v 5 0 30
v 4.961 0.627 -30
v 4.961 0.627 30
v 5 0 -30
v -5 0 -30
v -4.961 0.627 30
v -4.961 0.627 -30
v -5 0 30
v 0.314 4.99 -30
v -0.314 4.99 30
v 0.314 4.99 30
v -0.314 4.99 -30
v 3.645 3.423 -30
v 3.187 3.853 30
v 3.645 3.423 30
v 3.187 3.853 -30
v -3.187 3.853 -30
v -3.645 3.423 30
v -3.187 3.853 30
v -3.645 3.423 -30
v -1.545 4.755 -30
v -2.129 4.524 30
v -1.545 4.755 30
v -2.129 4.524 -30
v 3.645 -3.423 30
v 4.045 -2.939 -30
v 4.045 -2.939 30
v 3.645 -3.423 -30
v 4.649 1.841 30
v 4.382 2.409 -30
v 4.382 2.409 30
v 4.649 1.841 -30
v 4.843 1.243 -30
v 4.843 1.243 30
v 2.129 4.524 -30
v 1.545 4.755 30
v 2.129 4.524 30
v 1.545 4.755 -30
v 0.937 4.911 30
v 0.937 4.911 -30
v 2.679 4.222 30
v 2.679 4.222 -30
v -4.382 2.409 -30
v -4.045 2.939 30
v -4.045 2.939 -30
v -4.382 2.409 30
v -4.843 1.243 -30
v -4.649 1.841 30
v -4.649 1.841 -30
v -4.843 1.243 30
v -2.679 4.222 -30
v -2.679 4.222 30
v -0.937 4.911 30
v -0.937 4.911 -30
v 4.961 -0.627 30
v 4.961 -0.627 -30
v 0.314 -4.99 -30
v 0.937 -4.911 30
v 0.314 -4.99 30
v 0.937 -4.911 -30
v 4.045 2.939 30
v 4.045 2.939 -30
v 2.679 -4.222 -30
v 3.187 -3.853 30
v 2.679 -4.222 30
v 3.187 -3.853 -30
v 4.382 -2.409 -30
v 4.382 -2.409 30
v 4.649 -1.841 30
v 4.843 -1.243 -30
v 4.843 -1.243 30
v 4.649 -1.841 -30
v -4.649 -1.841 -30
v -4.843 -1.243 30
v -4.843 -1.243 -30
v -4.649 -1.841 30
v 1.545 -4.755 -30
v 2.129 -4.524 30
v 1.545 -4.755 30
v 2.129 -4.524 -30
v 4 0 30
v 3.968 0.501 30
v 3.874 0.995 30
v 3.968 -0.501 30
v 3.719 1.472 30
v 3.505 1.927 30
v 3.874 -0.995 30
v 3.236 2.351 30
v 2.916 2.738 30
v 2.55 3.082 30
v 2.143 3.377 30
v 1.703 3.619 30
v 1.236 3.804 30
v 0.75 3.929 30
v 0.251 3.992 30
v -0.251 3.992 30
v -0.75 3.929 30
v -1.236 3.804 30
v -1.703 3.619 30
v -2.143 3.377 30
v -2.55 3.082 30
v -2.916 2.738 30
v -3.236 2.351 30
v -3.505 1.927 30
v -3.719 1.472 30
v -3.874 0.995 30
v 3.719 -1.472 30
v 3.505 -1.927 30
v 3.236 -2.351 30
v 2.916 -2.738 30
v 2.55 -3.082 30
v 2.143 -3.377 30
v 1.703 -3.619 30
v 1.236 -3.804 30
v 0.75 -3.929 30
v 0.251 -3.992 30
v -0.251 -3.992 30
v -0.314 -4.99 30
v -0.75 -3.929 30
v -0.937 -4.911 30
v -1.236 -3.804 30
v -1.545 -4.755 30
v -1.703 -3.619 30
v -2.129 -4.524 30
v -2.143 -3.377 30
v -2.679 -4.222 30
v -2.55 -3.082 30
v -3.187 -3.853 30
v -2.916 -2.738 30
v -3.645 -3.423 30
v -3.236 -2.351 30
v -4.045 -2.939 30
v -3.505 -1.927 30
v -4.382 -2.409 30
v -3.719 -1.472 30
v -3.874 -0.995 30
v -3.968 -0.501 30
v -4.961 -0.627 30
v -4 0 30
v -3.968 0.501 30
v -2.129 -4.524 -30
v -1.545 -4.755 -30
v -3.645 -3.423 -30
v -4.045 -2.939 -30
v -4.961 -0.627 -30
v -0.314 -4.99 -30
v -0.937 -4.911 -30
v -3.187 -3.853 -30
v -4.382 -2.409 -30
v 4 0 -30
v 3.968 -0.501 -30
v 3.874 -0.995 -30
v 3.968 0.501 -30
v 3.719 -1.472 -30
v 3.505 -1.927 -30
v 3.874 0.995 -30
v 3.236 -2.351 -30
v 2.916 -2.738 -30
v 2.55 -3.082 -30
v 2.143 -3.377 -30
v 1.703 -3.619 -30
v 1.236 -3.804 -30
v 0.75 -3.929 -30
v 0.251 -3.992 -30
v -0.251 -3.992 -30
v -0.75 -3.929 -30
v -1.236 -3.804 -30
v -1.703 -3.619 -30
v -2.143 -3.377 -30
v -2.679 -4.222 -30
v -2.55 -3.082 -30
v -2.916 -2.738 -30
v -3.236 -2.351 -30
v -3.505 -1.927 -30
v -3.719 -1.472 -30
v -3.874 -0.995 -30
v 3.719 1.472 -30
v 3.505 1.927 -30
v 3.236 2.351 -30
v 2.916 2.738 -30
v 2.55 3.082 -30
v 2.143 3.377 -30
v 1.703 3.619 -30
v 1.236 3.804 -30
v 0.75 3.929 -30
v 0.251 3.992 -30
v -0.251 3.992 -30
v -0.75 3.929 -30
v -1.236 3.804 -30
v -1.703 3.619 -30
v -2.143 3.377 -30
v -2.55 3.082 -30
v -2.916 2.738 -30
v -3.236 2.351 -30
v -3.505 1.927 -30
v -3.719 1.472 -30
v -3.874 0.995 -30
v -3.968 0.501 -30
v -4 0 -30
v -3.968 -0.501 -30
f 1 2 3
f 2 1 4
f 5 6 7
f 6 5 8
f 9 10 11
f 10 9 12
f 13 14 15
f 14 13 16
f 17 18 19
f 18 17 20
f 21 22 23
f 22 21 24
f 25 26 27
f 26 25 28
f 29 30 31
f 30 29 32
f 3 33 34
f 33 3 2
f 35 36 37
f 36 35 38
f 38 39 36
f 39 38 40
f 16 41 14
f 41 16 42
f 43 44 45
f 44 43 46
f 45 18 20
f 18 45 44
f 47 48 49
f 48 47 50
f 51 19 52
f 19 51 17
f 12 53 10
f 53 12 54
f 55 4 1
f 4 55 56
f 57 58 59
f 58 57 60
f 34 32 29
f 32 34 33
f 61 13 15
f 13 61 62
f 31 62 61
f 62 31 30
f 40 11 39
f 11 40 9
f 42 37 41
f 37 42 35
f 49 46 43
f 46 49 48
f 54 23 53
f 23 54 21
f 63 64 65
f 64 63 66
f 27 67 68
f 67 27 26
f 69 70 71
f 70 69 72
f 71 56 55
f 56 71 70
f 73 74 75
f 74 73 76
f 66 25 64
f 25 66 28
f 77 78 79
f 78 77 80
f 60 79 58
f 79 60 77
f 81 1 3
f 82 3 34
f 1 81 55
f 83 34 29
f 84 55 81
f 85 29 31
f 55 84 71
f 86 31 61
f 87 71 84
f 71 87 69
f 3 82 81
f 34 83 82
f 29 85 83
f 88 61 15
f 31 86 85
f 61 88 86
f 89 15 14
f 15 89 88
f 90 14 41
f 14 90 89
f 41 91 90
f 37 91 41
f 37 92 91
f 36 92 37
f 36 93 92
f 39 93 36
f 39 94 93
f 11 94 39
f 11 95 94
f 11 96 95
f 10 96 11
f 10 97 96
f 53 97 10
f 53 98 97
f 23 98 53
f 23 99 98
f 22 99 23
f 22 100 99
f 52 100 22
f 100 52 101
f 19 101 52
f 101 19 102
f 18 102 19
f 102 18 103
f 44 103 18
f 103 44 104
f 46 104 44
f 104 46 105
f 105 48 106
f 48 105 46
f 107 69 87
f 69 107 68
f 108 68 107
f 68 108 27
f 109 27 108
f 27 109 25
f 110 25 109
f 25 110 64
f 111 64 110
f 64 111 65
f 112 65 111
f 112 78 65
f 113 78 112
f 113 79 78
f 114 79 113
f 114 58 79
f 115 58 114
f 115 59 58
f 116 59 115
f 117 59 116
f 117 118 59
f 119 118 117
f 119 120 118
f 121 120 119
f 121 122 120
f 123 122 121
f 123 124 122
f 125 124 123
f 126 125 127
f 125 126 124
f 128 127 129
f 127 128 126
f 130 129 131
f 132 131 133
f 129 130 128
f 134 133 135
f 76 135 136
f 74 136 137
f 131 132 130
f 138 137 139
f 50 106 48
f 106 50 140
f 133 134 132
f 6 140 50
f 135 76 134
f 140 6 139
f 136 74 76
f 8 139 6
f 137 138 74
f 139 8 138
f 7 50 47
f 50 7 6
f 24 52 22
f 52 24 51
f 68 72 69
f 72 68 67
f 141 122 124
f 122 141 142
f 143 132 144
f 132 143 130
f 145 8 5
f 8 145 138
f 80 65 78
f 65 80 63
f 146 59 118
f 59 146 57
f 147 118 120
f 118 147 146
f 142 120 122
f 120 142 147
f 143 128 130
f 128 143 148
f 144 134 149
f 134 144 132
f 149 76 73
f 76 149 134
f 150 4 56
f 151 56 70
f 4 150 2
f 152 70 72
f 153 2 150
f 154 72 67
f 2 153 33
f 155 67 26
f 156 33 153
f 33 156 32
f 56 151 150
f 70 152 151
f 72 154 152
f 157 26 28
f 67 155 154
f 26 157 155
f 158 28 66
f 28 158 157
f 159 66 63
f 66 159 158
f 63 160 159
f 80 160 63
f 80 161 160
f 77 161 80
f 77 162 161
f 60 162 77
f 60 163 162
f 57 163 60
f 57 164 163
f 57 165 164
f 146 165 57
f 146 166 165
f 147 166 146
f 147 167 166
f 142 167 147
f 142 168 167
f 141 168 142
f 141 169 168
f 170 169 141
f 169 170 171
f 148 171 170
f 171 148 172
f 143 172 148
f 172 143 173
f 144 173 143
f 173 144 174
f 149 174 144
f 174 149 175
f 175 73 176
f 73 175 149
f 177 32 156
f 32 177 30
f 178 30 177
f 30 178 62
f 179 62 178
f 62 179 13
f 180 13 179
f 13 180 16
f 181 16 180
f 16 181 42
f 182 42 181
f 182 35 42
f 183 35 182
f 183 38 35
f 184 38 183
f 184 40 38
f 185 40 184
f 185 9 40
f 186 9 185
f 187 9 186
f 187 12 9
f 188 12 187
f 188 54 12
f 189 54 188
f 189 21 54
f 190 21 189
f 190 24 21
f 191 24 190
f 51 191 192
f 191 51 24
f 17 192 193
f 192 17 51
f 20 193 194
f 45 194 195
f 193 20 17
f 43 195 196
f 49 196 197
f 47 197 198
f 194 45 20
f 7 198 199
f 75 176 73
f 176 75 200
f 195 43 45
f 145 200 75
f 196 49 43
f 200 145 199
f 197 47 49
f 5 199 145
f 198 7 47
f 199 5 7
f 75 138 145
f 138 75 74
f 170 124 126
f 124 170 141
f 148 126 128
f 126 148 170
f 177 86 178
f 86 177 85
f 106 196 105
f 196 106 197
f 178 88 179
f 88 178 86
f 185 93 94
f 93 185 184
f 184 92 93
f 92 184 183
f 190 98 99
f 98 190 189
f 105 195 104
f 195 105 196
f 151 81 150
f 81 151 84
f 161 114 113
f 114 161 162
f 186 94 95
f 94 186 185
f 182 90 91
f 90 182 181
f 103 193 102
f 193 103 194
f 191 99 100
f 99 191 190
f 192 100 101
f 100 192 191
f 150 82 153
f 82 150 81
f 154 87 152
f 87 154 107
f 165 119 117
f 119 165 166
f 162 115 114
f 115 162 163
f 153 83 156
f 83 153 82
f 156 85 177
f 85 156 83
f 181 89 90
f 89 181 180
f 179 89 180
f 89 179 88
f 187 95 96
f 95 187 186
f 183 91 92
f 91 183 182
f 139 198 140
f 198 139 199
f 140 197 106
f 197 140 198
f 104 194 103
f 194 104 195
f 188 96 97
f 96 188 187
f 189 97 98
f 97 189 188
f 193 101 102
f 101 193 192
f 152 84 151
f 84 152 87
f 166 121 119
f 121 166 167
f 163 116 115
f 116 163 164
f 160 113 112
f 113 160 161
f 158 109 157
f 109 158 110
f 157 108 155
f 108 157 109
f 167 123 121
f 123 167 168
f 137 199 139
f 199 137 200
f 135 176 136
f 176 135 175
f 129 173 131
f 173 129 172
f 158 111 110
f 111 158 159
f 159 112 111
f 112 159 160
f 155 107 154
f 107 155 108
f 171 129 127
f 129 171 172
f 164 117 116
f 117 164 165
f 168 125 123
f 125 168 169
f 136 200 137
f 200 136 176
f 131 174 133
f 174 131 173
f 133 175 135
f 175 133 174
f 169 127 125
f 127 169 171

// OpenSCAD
$fn = 50;


difference() {
	union() {
		translate(v = [0, 0, -30.0000000000]) {
			cylinder(h = 60, r = 5.0000000000);
		}
	}
	union() {
		translate(v = [0, 0, -100.0000000000]) {
			cylinder(h = 200, r = 4.0000000000);
		}
	}
}
